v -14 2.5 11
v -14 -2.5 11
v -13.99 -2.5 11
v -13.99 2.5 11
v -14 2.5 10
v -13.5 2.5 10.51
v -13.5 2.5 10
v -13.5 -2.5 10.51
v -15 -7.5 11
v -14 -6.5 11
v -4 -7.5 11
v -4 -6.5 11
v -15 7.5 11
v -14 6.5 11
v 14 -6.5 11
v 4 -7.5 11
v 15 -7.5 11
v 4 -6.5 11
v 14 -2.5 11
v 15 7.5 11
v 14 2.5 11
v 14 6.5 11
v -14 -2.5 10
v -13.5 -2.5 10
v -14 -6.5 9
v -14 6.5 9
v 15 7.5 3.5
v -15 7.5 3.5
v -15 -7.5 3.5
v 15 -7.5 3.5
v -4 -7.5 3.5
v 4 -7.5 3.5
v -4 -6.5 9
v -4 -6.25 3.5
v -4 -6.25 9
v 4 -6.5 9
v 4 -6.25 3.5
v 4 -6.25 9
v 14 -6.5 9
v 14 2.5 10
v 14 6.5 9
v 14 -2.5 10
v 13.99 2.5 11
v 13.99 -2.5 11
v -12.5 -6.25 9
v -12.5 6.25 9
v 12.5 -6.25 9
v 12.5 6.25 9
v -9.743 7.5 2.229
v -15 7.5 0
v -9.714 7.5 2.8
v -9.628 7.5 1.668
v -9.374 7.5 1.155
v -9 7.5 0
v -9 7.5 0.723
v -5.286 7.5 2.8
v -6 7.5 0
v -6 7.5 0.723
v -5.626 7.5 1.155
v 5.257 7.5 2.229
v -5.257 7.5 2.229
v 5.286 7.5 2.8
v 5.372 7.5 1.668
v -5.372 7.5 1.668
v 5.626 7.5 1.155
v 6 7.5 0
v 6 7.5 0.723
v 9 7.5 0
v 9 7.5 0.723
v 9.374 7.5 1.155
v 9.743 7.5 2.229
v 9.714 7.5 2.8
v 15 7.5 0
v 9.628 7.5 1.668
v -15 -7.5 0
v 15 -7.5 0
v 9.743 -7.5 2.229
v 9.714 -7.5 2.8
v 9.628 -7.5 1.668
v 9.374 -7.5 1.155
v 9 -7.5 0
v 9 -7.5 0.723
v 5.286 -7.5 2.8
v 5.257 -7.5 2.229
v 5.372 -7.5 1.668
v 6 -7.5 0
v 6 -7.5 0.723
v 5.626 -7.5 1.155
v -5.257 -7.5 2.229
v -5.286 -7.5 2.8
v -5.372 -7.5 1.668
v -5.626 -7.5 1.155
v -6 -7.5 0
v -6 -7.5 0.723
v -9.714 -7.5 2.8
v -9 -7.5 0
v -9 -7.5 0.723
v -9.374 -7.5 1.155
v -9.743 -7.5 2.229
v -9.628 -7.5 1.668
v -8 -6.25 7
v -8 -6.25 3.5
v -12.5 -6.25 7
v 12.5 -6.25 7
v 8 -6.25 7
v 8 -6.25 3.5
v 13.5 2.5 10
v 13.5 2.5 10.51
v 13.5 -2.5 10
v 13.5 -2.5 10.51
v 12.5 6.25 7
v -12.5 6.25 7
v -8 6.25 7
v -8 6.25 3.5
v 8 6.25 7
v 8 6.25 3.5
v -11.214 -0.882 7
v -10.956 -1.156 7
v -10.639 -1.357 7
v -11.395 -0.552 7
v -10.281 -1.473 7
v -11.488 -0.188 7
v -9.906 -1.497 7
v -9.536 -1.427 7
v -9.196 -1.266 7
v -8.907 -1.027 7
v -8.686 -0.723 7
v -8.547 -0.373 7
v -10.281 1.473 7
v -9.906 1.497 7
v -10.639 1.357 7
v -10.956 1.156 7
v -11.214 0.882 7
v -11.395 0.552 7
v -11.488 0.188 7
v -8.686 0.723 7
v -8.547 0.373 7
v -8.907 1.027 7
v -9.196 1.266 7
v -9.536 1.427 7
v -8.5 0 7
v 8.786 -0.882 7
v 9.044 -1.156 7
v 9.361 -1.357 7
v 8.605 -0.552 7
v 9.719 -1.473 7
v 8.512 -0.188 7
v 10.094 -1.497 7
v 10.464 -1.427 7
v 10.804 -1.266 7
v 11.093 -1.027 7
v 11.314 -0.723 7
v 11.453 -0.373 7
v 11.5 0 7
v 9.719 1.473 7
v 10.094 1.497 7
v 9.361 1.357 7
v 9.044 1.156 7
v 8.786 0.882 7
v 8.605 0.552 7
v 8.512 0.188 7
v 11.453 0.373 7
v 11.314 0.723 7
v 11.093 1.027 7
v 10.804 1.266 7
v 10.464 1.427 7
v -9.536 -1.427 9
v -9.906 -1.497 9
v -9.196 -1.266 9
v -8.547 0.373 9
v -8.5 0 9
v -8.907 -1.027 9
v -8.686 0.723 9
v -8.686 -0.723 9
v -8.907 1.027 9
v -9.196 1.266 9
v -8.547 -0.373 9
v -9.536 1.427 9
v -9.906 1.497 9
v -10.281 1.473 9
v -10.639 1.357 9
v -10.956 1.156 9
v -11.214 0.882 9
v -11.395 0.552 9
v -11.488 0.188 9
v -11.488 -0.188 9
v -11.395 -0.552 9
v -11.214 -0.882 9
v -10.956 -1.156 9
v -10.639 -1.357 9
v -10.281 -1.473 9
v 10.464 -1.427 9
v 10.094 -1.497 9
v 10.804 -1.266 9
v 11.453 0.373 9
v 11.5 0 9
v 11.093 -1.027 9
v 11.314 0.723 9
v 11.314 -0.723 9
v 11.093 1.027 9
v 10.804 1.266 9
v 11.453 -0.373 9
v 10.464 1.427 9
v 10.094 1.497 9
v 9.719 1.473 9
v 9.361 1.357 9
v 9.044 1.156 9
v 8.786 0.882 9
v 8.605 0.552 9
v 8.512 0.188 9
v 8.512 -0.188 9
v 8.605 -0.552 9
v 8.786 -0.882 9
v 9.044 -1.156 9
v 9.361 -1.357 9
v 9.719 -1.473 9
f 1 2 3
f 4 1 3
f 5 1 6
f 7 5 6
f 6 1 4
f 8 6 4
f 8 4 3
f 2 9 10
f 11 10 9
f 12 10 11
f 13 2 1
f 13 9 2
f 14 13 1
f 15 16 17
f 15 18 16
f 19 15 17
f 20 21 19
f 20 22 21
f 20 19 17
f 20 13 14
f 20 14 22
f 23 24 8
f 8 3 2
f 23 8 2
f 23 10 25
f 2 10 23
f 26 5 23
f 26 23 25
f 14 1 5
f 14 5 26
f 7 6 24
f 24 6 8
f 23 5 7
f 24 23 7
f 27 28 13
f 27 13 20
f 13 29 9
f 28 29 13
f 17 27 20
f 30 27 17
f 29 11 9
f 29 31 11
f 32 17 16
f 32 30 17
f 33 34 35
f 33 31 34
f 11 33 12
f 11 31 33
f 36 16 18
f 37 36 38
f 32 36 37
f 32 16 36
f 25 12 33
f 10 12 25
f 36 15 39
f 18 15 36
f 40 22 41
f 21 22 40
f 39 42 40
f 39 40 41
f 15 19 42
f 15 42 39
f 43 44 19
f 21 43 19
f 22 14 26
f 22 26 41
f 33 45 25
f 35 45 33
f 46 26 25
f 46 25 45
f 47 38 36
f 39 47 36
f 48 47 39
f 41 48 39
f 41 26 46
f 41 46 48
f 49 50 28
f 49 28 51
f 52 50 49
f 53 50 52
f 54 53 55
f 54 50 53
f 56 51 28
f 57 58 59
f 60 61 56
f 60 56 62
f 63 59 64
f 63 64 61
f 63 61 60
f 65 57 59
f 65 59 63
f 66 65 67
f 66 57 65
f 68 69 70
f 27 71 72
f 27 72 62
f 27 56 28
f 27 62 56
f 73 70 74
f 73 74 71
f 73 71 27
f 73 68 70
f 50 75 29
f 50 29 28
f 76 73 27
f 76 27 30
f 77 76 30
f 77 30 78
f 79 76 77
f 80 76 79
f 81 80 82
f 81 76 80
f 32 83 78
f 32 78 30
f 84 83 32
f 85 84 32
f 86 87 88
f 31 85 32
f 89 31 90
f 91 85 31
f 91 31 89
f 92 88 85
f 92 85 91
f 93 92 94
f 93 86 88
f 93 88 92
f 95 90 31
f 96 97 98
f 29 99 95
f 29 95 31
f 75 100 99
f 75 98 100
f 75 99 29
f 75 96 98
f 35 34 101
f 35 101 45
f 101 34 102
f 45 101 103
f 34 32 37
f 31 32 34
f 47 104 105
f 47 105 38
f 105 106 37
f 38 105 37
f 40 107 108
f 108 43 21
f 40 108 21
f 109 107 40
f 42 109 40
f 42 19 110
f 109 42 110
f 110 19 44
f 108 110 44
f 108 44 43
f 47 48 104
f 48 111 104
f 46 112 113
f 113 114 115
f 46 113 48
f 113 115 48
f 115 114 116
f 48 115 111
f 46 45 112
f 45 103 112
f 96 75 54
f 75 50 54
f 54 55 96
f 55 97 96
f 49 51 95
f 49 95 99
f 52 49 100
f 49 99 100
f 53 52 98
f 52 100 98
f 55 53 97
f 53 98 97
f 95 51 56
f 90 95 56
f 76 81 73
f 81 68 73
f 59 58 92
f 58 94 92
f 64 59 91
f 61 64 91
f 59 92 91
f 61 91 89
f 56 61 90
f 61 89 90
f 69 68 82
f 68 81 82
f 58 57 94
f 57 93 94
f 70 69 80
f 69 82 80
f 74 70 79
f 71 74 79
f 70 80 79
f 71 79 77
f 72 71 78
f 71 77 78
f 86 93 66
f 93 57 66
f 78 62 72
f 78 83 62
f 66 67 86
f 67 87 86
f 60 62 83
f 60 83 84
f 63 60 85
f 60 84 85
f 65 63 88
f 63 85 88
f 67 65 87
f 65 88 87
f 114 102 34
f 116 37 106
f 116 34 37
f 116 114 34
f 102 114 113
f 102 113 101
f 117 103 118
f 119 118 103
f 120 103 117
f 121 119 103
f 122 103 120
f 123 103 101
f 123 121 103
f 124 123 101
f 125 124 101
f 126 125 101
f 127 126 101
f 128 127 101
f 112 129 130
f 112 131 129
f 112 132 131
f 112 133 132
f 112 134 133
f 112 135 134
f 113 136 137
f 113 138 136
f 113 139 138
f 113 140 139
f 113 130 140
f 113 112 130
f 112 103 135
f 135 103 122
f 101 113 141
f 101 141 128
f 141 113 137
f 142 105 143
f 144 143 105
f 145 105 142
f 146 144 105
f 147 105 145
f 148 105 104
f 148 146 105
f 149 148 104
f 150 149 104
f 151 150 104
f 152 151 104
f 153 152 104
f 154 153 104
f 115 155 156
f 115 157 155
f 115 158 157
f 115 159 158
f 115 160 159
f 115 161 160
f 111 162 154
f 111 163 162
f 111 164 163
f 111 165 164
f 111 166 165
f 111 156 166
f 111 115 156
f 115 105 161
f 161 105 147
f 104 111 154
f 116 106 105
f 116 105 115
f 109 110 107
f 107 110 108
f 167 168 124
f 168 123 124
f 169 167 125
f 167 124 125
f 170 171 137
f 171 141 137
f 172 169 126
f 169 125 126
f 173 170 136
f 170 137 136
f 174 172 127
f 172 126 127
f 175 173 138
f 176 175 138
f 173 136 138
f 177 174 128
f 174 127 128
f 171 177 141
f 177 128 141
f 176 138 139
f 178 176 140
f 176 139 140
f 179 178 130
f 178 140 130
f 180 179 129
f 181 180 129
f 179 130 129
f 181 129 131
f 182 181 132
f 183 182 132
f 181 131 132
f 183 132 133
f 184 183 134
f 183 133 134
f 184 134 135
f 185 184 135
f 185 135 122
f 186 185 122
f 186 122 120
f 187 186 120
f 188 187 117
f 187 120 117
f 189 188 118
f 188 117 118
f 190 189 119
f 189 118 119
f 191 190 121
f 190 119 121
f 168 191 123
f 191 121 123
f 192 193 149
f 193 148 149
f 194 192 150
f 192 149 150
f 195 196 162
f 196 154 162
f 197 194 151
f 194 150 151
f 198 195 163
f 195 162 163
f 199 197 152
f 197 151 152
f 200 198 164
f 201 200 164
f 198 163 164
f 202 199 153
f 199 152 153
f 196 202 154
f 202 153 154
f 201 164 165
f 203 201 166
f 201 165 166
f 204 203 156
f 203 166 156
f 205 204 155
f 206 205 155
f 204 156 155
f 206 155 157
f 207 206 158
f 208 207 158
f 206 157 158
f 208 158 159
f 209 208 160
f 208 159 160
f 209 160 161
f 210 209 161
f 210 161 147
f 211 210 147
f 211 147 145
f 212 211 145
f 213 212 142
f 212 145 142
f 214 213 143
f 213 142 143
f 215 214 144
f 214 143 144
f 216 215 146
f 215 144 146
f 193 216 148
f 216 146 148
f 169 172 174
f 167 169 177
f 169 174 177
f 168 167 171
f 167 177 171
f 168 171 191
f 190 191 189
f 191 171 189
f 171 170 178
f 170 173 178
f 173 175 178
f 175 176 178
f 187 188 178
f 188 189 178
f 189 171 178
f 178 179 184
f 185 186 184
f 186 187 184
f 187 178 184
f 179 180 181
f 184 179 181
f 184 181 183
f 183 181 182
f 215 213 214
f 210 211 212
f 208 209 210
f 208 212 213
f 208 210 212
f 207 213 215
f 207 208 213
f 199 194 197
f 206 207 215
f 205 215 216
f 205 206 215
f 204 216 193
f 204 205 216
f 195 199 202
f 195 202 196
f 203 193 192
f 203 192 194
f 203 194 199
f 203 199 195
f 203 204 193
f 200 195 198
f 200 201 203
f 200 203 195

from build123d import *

# Parameters (mm, degrees)
SKETCH_W            = 30
SKETCH_H            = 15
PAD_DEPTH           = 3.5
SKETCH001_W         = 30
SKETCH001_H         = 15
SKETCH001_W_2       = 25
SKETCH001_H_2       = 12.5
PAD001_DEPTH        = 7.5
POCKET_DEPTH        = 15.001
LINEARPATTERN_COUNT = 2
LINEARPATTERN_PITCH = 15
SKETCH003_W         = 8
SKETCH003_H         = 7.5
POCKET001_DEPTH     = 1.25
SKETCH004_W         = 4.5
SKETCH004_H         = 12.5
PAD002_DEPTH        = 3.5
SKETCH005_R         = 1.5
PAD003_DEPTH        = 2
SKETCH006_W         = 28
SKETCH006_H         = 13
POCKET002_DEPTH     = 2
SKETCH007_W         = 0.5
SKETCH007_H         = 5
PAD004_DEPTH        = 1
CHAMFER_SIZE        = 0.49


with BuildPart() as part:
    # Sketch → Pad (new body)
    with BuildSketch(Plane.XY):
        Rectangle(SKETCH_W, SKETCH_H)
    extrude(amount=PAD_DEPTH)

    # Sketch001 → Pad001 (new body)
    with BuildSketch(Plane.XY.offset(3.5)):
        Rectangle(SKETCH001_W, SKETCH001_H)
        Rectangle(SKETCH001_W_2, SKETCH001_H_2, mode=Mode.SUBTRACT)
    extrude(amount=PAD001_DEPTH)

    # Sketch002 → Pocket (cut, through all)
    with BuildSketch(Plane.XZ.offset(7.5)):
        with BuildLine():
            Line((-9, 0.722949), (-9, 0))
            Line((-9, 0), (-6, 0))
            Line((-6, 0), (-6, 0.722949))
            ThreePointArc((-6, 0.722949), (-5.37226, 1.668412), (-5.285841, 2.8))
            Line((-9.714159, 2.8), (-5.285841, 2.8))
            ThreePointArc((-9.714159, 2.8), (-9.62774, 1.668412), (-9, 0.722949))
        make_face()
    pocket = extrude(amount=-POCKET_DEPTH, mode=Mode.SUBTRACT)

    # LinearPattern: Pocket ×2
    with Locations(*[(i * LINEARPATTERN_PITCH, 0, 0) for i in range(1, LINEARPATTERN_COUNT)]):
        add(pocket, mode=Mode.SUBTRACT)

    # Sketch003 → Pocket001 (cut)
    with BuildSketch(Plane.XZ.offset(7.5)):
        with Locations((0, 7.25)):
            Rectangle(SKETCH003_W, SKETCH003_H)
    extrude(amount=-POCKET001_DEPTH, mode=Mode.SUBTRACT)

    # Sketch004 → Pad002 (new body)
    with BuildSketch(Plane.XY.offset(3.5)):
        with Locations((-10.25, 0)):
            Rectangle(SKETCH004_W, SKETCH004_H)
        with Locations((10.25, 0)):
            Rectangle(SKETCH004_W, SKETCH004_H)
    extrude(amount=PAD002_DEPTH)

    # Sketch005 → Pad003 (new body)
    with BuildSketch(Plane.XY.offset(7)):
        with Locations((-10, 0)):
            Circle(SKETCH005_R)
        with Locations((10, 0)):
            Circle(SKETCH005_R)
    extrude(amount=PAD003_DEPTH)

    # Sketch006 → Pocket002 (cut)
    with BuildSketch(Plane.XY.offset(11)):
        Rectangle(SKETCH006_W, SKETCH006_H)
    extrude(amount=-POCKET002_DEPTH, mode=Mode.SUBTRACT)

    # Sketch007 → Pad004 (new body)
    with BuildSketch(Plane.XY.offset(11)):
        with Locations((-13.75, 0)):
            Rectangle(SKETCH007_W, SKETCH007_H)
        with Locations((13.75, 0)):
            Rectangle(SKETCH007_W, SKETCH007_H)
    extrude(amount=-PAD004_DEPTH)

    # Chamfer
    chamfer_edges = [part.edges().sort_by_distance(p)[0] for p in [
        (-13.5, 0, 11),
        (13.5, 0, 11),
    ]]
    chamfer(chamfer_edges, length=CHAMFER_SIZE)


solid = part.part
